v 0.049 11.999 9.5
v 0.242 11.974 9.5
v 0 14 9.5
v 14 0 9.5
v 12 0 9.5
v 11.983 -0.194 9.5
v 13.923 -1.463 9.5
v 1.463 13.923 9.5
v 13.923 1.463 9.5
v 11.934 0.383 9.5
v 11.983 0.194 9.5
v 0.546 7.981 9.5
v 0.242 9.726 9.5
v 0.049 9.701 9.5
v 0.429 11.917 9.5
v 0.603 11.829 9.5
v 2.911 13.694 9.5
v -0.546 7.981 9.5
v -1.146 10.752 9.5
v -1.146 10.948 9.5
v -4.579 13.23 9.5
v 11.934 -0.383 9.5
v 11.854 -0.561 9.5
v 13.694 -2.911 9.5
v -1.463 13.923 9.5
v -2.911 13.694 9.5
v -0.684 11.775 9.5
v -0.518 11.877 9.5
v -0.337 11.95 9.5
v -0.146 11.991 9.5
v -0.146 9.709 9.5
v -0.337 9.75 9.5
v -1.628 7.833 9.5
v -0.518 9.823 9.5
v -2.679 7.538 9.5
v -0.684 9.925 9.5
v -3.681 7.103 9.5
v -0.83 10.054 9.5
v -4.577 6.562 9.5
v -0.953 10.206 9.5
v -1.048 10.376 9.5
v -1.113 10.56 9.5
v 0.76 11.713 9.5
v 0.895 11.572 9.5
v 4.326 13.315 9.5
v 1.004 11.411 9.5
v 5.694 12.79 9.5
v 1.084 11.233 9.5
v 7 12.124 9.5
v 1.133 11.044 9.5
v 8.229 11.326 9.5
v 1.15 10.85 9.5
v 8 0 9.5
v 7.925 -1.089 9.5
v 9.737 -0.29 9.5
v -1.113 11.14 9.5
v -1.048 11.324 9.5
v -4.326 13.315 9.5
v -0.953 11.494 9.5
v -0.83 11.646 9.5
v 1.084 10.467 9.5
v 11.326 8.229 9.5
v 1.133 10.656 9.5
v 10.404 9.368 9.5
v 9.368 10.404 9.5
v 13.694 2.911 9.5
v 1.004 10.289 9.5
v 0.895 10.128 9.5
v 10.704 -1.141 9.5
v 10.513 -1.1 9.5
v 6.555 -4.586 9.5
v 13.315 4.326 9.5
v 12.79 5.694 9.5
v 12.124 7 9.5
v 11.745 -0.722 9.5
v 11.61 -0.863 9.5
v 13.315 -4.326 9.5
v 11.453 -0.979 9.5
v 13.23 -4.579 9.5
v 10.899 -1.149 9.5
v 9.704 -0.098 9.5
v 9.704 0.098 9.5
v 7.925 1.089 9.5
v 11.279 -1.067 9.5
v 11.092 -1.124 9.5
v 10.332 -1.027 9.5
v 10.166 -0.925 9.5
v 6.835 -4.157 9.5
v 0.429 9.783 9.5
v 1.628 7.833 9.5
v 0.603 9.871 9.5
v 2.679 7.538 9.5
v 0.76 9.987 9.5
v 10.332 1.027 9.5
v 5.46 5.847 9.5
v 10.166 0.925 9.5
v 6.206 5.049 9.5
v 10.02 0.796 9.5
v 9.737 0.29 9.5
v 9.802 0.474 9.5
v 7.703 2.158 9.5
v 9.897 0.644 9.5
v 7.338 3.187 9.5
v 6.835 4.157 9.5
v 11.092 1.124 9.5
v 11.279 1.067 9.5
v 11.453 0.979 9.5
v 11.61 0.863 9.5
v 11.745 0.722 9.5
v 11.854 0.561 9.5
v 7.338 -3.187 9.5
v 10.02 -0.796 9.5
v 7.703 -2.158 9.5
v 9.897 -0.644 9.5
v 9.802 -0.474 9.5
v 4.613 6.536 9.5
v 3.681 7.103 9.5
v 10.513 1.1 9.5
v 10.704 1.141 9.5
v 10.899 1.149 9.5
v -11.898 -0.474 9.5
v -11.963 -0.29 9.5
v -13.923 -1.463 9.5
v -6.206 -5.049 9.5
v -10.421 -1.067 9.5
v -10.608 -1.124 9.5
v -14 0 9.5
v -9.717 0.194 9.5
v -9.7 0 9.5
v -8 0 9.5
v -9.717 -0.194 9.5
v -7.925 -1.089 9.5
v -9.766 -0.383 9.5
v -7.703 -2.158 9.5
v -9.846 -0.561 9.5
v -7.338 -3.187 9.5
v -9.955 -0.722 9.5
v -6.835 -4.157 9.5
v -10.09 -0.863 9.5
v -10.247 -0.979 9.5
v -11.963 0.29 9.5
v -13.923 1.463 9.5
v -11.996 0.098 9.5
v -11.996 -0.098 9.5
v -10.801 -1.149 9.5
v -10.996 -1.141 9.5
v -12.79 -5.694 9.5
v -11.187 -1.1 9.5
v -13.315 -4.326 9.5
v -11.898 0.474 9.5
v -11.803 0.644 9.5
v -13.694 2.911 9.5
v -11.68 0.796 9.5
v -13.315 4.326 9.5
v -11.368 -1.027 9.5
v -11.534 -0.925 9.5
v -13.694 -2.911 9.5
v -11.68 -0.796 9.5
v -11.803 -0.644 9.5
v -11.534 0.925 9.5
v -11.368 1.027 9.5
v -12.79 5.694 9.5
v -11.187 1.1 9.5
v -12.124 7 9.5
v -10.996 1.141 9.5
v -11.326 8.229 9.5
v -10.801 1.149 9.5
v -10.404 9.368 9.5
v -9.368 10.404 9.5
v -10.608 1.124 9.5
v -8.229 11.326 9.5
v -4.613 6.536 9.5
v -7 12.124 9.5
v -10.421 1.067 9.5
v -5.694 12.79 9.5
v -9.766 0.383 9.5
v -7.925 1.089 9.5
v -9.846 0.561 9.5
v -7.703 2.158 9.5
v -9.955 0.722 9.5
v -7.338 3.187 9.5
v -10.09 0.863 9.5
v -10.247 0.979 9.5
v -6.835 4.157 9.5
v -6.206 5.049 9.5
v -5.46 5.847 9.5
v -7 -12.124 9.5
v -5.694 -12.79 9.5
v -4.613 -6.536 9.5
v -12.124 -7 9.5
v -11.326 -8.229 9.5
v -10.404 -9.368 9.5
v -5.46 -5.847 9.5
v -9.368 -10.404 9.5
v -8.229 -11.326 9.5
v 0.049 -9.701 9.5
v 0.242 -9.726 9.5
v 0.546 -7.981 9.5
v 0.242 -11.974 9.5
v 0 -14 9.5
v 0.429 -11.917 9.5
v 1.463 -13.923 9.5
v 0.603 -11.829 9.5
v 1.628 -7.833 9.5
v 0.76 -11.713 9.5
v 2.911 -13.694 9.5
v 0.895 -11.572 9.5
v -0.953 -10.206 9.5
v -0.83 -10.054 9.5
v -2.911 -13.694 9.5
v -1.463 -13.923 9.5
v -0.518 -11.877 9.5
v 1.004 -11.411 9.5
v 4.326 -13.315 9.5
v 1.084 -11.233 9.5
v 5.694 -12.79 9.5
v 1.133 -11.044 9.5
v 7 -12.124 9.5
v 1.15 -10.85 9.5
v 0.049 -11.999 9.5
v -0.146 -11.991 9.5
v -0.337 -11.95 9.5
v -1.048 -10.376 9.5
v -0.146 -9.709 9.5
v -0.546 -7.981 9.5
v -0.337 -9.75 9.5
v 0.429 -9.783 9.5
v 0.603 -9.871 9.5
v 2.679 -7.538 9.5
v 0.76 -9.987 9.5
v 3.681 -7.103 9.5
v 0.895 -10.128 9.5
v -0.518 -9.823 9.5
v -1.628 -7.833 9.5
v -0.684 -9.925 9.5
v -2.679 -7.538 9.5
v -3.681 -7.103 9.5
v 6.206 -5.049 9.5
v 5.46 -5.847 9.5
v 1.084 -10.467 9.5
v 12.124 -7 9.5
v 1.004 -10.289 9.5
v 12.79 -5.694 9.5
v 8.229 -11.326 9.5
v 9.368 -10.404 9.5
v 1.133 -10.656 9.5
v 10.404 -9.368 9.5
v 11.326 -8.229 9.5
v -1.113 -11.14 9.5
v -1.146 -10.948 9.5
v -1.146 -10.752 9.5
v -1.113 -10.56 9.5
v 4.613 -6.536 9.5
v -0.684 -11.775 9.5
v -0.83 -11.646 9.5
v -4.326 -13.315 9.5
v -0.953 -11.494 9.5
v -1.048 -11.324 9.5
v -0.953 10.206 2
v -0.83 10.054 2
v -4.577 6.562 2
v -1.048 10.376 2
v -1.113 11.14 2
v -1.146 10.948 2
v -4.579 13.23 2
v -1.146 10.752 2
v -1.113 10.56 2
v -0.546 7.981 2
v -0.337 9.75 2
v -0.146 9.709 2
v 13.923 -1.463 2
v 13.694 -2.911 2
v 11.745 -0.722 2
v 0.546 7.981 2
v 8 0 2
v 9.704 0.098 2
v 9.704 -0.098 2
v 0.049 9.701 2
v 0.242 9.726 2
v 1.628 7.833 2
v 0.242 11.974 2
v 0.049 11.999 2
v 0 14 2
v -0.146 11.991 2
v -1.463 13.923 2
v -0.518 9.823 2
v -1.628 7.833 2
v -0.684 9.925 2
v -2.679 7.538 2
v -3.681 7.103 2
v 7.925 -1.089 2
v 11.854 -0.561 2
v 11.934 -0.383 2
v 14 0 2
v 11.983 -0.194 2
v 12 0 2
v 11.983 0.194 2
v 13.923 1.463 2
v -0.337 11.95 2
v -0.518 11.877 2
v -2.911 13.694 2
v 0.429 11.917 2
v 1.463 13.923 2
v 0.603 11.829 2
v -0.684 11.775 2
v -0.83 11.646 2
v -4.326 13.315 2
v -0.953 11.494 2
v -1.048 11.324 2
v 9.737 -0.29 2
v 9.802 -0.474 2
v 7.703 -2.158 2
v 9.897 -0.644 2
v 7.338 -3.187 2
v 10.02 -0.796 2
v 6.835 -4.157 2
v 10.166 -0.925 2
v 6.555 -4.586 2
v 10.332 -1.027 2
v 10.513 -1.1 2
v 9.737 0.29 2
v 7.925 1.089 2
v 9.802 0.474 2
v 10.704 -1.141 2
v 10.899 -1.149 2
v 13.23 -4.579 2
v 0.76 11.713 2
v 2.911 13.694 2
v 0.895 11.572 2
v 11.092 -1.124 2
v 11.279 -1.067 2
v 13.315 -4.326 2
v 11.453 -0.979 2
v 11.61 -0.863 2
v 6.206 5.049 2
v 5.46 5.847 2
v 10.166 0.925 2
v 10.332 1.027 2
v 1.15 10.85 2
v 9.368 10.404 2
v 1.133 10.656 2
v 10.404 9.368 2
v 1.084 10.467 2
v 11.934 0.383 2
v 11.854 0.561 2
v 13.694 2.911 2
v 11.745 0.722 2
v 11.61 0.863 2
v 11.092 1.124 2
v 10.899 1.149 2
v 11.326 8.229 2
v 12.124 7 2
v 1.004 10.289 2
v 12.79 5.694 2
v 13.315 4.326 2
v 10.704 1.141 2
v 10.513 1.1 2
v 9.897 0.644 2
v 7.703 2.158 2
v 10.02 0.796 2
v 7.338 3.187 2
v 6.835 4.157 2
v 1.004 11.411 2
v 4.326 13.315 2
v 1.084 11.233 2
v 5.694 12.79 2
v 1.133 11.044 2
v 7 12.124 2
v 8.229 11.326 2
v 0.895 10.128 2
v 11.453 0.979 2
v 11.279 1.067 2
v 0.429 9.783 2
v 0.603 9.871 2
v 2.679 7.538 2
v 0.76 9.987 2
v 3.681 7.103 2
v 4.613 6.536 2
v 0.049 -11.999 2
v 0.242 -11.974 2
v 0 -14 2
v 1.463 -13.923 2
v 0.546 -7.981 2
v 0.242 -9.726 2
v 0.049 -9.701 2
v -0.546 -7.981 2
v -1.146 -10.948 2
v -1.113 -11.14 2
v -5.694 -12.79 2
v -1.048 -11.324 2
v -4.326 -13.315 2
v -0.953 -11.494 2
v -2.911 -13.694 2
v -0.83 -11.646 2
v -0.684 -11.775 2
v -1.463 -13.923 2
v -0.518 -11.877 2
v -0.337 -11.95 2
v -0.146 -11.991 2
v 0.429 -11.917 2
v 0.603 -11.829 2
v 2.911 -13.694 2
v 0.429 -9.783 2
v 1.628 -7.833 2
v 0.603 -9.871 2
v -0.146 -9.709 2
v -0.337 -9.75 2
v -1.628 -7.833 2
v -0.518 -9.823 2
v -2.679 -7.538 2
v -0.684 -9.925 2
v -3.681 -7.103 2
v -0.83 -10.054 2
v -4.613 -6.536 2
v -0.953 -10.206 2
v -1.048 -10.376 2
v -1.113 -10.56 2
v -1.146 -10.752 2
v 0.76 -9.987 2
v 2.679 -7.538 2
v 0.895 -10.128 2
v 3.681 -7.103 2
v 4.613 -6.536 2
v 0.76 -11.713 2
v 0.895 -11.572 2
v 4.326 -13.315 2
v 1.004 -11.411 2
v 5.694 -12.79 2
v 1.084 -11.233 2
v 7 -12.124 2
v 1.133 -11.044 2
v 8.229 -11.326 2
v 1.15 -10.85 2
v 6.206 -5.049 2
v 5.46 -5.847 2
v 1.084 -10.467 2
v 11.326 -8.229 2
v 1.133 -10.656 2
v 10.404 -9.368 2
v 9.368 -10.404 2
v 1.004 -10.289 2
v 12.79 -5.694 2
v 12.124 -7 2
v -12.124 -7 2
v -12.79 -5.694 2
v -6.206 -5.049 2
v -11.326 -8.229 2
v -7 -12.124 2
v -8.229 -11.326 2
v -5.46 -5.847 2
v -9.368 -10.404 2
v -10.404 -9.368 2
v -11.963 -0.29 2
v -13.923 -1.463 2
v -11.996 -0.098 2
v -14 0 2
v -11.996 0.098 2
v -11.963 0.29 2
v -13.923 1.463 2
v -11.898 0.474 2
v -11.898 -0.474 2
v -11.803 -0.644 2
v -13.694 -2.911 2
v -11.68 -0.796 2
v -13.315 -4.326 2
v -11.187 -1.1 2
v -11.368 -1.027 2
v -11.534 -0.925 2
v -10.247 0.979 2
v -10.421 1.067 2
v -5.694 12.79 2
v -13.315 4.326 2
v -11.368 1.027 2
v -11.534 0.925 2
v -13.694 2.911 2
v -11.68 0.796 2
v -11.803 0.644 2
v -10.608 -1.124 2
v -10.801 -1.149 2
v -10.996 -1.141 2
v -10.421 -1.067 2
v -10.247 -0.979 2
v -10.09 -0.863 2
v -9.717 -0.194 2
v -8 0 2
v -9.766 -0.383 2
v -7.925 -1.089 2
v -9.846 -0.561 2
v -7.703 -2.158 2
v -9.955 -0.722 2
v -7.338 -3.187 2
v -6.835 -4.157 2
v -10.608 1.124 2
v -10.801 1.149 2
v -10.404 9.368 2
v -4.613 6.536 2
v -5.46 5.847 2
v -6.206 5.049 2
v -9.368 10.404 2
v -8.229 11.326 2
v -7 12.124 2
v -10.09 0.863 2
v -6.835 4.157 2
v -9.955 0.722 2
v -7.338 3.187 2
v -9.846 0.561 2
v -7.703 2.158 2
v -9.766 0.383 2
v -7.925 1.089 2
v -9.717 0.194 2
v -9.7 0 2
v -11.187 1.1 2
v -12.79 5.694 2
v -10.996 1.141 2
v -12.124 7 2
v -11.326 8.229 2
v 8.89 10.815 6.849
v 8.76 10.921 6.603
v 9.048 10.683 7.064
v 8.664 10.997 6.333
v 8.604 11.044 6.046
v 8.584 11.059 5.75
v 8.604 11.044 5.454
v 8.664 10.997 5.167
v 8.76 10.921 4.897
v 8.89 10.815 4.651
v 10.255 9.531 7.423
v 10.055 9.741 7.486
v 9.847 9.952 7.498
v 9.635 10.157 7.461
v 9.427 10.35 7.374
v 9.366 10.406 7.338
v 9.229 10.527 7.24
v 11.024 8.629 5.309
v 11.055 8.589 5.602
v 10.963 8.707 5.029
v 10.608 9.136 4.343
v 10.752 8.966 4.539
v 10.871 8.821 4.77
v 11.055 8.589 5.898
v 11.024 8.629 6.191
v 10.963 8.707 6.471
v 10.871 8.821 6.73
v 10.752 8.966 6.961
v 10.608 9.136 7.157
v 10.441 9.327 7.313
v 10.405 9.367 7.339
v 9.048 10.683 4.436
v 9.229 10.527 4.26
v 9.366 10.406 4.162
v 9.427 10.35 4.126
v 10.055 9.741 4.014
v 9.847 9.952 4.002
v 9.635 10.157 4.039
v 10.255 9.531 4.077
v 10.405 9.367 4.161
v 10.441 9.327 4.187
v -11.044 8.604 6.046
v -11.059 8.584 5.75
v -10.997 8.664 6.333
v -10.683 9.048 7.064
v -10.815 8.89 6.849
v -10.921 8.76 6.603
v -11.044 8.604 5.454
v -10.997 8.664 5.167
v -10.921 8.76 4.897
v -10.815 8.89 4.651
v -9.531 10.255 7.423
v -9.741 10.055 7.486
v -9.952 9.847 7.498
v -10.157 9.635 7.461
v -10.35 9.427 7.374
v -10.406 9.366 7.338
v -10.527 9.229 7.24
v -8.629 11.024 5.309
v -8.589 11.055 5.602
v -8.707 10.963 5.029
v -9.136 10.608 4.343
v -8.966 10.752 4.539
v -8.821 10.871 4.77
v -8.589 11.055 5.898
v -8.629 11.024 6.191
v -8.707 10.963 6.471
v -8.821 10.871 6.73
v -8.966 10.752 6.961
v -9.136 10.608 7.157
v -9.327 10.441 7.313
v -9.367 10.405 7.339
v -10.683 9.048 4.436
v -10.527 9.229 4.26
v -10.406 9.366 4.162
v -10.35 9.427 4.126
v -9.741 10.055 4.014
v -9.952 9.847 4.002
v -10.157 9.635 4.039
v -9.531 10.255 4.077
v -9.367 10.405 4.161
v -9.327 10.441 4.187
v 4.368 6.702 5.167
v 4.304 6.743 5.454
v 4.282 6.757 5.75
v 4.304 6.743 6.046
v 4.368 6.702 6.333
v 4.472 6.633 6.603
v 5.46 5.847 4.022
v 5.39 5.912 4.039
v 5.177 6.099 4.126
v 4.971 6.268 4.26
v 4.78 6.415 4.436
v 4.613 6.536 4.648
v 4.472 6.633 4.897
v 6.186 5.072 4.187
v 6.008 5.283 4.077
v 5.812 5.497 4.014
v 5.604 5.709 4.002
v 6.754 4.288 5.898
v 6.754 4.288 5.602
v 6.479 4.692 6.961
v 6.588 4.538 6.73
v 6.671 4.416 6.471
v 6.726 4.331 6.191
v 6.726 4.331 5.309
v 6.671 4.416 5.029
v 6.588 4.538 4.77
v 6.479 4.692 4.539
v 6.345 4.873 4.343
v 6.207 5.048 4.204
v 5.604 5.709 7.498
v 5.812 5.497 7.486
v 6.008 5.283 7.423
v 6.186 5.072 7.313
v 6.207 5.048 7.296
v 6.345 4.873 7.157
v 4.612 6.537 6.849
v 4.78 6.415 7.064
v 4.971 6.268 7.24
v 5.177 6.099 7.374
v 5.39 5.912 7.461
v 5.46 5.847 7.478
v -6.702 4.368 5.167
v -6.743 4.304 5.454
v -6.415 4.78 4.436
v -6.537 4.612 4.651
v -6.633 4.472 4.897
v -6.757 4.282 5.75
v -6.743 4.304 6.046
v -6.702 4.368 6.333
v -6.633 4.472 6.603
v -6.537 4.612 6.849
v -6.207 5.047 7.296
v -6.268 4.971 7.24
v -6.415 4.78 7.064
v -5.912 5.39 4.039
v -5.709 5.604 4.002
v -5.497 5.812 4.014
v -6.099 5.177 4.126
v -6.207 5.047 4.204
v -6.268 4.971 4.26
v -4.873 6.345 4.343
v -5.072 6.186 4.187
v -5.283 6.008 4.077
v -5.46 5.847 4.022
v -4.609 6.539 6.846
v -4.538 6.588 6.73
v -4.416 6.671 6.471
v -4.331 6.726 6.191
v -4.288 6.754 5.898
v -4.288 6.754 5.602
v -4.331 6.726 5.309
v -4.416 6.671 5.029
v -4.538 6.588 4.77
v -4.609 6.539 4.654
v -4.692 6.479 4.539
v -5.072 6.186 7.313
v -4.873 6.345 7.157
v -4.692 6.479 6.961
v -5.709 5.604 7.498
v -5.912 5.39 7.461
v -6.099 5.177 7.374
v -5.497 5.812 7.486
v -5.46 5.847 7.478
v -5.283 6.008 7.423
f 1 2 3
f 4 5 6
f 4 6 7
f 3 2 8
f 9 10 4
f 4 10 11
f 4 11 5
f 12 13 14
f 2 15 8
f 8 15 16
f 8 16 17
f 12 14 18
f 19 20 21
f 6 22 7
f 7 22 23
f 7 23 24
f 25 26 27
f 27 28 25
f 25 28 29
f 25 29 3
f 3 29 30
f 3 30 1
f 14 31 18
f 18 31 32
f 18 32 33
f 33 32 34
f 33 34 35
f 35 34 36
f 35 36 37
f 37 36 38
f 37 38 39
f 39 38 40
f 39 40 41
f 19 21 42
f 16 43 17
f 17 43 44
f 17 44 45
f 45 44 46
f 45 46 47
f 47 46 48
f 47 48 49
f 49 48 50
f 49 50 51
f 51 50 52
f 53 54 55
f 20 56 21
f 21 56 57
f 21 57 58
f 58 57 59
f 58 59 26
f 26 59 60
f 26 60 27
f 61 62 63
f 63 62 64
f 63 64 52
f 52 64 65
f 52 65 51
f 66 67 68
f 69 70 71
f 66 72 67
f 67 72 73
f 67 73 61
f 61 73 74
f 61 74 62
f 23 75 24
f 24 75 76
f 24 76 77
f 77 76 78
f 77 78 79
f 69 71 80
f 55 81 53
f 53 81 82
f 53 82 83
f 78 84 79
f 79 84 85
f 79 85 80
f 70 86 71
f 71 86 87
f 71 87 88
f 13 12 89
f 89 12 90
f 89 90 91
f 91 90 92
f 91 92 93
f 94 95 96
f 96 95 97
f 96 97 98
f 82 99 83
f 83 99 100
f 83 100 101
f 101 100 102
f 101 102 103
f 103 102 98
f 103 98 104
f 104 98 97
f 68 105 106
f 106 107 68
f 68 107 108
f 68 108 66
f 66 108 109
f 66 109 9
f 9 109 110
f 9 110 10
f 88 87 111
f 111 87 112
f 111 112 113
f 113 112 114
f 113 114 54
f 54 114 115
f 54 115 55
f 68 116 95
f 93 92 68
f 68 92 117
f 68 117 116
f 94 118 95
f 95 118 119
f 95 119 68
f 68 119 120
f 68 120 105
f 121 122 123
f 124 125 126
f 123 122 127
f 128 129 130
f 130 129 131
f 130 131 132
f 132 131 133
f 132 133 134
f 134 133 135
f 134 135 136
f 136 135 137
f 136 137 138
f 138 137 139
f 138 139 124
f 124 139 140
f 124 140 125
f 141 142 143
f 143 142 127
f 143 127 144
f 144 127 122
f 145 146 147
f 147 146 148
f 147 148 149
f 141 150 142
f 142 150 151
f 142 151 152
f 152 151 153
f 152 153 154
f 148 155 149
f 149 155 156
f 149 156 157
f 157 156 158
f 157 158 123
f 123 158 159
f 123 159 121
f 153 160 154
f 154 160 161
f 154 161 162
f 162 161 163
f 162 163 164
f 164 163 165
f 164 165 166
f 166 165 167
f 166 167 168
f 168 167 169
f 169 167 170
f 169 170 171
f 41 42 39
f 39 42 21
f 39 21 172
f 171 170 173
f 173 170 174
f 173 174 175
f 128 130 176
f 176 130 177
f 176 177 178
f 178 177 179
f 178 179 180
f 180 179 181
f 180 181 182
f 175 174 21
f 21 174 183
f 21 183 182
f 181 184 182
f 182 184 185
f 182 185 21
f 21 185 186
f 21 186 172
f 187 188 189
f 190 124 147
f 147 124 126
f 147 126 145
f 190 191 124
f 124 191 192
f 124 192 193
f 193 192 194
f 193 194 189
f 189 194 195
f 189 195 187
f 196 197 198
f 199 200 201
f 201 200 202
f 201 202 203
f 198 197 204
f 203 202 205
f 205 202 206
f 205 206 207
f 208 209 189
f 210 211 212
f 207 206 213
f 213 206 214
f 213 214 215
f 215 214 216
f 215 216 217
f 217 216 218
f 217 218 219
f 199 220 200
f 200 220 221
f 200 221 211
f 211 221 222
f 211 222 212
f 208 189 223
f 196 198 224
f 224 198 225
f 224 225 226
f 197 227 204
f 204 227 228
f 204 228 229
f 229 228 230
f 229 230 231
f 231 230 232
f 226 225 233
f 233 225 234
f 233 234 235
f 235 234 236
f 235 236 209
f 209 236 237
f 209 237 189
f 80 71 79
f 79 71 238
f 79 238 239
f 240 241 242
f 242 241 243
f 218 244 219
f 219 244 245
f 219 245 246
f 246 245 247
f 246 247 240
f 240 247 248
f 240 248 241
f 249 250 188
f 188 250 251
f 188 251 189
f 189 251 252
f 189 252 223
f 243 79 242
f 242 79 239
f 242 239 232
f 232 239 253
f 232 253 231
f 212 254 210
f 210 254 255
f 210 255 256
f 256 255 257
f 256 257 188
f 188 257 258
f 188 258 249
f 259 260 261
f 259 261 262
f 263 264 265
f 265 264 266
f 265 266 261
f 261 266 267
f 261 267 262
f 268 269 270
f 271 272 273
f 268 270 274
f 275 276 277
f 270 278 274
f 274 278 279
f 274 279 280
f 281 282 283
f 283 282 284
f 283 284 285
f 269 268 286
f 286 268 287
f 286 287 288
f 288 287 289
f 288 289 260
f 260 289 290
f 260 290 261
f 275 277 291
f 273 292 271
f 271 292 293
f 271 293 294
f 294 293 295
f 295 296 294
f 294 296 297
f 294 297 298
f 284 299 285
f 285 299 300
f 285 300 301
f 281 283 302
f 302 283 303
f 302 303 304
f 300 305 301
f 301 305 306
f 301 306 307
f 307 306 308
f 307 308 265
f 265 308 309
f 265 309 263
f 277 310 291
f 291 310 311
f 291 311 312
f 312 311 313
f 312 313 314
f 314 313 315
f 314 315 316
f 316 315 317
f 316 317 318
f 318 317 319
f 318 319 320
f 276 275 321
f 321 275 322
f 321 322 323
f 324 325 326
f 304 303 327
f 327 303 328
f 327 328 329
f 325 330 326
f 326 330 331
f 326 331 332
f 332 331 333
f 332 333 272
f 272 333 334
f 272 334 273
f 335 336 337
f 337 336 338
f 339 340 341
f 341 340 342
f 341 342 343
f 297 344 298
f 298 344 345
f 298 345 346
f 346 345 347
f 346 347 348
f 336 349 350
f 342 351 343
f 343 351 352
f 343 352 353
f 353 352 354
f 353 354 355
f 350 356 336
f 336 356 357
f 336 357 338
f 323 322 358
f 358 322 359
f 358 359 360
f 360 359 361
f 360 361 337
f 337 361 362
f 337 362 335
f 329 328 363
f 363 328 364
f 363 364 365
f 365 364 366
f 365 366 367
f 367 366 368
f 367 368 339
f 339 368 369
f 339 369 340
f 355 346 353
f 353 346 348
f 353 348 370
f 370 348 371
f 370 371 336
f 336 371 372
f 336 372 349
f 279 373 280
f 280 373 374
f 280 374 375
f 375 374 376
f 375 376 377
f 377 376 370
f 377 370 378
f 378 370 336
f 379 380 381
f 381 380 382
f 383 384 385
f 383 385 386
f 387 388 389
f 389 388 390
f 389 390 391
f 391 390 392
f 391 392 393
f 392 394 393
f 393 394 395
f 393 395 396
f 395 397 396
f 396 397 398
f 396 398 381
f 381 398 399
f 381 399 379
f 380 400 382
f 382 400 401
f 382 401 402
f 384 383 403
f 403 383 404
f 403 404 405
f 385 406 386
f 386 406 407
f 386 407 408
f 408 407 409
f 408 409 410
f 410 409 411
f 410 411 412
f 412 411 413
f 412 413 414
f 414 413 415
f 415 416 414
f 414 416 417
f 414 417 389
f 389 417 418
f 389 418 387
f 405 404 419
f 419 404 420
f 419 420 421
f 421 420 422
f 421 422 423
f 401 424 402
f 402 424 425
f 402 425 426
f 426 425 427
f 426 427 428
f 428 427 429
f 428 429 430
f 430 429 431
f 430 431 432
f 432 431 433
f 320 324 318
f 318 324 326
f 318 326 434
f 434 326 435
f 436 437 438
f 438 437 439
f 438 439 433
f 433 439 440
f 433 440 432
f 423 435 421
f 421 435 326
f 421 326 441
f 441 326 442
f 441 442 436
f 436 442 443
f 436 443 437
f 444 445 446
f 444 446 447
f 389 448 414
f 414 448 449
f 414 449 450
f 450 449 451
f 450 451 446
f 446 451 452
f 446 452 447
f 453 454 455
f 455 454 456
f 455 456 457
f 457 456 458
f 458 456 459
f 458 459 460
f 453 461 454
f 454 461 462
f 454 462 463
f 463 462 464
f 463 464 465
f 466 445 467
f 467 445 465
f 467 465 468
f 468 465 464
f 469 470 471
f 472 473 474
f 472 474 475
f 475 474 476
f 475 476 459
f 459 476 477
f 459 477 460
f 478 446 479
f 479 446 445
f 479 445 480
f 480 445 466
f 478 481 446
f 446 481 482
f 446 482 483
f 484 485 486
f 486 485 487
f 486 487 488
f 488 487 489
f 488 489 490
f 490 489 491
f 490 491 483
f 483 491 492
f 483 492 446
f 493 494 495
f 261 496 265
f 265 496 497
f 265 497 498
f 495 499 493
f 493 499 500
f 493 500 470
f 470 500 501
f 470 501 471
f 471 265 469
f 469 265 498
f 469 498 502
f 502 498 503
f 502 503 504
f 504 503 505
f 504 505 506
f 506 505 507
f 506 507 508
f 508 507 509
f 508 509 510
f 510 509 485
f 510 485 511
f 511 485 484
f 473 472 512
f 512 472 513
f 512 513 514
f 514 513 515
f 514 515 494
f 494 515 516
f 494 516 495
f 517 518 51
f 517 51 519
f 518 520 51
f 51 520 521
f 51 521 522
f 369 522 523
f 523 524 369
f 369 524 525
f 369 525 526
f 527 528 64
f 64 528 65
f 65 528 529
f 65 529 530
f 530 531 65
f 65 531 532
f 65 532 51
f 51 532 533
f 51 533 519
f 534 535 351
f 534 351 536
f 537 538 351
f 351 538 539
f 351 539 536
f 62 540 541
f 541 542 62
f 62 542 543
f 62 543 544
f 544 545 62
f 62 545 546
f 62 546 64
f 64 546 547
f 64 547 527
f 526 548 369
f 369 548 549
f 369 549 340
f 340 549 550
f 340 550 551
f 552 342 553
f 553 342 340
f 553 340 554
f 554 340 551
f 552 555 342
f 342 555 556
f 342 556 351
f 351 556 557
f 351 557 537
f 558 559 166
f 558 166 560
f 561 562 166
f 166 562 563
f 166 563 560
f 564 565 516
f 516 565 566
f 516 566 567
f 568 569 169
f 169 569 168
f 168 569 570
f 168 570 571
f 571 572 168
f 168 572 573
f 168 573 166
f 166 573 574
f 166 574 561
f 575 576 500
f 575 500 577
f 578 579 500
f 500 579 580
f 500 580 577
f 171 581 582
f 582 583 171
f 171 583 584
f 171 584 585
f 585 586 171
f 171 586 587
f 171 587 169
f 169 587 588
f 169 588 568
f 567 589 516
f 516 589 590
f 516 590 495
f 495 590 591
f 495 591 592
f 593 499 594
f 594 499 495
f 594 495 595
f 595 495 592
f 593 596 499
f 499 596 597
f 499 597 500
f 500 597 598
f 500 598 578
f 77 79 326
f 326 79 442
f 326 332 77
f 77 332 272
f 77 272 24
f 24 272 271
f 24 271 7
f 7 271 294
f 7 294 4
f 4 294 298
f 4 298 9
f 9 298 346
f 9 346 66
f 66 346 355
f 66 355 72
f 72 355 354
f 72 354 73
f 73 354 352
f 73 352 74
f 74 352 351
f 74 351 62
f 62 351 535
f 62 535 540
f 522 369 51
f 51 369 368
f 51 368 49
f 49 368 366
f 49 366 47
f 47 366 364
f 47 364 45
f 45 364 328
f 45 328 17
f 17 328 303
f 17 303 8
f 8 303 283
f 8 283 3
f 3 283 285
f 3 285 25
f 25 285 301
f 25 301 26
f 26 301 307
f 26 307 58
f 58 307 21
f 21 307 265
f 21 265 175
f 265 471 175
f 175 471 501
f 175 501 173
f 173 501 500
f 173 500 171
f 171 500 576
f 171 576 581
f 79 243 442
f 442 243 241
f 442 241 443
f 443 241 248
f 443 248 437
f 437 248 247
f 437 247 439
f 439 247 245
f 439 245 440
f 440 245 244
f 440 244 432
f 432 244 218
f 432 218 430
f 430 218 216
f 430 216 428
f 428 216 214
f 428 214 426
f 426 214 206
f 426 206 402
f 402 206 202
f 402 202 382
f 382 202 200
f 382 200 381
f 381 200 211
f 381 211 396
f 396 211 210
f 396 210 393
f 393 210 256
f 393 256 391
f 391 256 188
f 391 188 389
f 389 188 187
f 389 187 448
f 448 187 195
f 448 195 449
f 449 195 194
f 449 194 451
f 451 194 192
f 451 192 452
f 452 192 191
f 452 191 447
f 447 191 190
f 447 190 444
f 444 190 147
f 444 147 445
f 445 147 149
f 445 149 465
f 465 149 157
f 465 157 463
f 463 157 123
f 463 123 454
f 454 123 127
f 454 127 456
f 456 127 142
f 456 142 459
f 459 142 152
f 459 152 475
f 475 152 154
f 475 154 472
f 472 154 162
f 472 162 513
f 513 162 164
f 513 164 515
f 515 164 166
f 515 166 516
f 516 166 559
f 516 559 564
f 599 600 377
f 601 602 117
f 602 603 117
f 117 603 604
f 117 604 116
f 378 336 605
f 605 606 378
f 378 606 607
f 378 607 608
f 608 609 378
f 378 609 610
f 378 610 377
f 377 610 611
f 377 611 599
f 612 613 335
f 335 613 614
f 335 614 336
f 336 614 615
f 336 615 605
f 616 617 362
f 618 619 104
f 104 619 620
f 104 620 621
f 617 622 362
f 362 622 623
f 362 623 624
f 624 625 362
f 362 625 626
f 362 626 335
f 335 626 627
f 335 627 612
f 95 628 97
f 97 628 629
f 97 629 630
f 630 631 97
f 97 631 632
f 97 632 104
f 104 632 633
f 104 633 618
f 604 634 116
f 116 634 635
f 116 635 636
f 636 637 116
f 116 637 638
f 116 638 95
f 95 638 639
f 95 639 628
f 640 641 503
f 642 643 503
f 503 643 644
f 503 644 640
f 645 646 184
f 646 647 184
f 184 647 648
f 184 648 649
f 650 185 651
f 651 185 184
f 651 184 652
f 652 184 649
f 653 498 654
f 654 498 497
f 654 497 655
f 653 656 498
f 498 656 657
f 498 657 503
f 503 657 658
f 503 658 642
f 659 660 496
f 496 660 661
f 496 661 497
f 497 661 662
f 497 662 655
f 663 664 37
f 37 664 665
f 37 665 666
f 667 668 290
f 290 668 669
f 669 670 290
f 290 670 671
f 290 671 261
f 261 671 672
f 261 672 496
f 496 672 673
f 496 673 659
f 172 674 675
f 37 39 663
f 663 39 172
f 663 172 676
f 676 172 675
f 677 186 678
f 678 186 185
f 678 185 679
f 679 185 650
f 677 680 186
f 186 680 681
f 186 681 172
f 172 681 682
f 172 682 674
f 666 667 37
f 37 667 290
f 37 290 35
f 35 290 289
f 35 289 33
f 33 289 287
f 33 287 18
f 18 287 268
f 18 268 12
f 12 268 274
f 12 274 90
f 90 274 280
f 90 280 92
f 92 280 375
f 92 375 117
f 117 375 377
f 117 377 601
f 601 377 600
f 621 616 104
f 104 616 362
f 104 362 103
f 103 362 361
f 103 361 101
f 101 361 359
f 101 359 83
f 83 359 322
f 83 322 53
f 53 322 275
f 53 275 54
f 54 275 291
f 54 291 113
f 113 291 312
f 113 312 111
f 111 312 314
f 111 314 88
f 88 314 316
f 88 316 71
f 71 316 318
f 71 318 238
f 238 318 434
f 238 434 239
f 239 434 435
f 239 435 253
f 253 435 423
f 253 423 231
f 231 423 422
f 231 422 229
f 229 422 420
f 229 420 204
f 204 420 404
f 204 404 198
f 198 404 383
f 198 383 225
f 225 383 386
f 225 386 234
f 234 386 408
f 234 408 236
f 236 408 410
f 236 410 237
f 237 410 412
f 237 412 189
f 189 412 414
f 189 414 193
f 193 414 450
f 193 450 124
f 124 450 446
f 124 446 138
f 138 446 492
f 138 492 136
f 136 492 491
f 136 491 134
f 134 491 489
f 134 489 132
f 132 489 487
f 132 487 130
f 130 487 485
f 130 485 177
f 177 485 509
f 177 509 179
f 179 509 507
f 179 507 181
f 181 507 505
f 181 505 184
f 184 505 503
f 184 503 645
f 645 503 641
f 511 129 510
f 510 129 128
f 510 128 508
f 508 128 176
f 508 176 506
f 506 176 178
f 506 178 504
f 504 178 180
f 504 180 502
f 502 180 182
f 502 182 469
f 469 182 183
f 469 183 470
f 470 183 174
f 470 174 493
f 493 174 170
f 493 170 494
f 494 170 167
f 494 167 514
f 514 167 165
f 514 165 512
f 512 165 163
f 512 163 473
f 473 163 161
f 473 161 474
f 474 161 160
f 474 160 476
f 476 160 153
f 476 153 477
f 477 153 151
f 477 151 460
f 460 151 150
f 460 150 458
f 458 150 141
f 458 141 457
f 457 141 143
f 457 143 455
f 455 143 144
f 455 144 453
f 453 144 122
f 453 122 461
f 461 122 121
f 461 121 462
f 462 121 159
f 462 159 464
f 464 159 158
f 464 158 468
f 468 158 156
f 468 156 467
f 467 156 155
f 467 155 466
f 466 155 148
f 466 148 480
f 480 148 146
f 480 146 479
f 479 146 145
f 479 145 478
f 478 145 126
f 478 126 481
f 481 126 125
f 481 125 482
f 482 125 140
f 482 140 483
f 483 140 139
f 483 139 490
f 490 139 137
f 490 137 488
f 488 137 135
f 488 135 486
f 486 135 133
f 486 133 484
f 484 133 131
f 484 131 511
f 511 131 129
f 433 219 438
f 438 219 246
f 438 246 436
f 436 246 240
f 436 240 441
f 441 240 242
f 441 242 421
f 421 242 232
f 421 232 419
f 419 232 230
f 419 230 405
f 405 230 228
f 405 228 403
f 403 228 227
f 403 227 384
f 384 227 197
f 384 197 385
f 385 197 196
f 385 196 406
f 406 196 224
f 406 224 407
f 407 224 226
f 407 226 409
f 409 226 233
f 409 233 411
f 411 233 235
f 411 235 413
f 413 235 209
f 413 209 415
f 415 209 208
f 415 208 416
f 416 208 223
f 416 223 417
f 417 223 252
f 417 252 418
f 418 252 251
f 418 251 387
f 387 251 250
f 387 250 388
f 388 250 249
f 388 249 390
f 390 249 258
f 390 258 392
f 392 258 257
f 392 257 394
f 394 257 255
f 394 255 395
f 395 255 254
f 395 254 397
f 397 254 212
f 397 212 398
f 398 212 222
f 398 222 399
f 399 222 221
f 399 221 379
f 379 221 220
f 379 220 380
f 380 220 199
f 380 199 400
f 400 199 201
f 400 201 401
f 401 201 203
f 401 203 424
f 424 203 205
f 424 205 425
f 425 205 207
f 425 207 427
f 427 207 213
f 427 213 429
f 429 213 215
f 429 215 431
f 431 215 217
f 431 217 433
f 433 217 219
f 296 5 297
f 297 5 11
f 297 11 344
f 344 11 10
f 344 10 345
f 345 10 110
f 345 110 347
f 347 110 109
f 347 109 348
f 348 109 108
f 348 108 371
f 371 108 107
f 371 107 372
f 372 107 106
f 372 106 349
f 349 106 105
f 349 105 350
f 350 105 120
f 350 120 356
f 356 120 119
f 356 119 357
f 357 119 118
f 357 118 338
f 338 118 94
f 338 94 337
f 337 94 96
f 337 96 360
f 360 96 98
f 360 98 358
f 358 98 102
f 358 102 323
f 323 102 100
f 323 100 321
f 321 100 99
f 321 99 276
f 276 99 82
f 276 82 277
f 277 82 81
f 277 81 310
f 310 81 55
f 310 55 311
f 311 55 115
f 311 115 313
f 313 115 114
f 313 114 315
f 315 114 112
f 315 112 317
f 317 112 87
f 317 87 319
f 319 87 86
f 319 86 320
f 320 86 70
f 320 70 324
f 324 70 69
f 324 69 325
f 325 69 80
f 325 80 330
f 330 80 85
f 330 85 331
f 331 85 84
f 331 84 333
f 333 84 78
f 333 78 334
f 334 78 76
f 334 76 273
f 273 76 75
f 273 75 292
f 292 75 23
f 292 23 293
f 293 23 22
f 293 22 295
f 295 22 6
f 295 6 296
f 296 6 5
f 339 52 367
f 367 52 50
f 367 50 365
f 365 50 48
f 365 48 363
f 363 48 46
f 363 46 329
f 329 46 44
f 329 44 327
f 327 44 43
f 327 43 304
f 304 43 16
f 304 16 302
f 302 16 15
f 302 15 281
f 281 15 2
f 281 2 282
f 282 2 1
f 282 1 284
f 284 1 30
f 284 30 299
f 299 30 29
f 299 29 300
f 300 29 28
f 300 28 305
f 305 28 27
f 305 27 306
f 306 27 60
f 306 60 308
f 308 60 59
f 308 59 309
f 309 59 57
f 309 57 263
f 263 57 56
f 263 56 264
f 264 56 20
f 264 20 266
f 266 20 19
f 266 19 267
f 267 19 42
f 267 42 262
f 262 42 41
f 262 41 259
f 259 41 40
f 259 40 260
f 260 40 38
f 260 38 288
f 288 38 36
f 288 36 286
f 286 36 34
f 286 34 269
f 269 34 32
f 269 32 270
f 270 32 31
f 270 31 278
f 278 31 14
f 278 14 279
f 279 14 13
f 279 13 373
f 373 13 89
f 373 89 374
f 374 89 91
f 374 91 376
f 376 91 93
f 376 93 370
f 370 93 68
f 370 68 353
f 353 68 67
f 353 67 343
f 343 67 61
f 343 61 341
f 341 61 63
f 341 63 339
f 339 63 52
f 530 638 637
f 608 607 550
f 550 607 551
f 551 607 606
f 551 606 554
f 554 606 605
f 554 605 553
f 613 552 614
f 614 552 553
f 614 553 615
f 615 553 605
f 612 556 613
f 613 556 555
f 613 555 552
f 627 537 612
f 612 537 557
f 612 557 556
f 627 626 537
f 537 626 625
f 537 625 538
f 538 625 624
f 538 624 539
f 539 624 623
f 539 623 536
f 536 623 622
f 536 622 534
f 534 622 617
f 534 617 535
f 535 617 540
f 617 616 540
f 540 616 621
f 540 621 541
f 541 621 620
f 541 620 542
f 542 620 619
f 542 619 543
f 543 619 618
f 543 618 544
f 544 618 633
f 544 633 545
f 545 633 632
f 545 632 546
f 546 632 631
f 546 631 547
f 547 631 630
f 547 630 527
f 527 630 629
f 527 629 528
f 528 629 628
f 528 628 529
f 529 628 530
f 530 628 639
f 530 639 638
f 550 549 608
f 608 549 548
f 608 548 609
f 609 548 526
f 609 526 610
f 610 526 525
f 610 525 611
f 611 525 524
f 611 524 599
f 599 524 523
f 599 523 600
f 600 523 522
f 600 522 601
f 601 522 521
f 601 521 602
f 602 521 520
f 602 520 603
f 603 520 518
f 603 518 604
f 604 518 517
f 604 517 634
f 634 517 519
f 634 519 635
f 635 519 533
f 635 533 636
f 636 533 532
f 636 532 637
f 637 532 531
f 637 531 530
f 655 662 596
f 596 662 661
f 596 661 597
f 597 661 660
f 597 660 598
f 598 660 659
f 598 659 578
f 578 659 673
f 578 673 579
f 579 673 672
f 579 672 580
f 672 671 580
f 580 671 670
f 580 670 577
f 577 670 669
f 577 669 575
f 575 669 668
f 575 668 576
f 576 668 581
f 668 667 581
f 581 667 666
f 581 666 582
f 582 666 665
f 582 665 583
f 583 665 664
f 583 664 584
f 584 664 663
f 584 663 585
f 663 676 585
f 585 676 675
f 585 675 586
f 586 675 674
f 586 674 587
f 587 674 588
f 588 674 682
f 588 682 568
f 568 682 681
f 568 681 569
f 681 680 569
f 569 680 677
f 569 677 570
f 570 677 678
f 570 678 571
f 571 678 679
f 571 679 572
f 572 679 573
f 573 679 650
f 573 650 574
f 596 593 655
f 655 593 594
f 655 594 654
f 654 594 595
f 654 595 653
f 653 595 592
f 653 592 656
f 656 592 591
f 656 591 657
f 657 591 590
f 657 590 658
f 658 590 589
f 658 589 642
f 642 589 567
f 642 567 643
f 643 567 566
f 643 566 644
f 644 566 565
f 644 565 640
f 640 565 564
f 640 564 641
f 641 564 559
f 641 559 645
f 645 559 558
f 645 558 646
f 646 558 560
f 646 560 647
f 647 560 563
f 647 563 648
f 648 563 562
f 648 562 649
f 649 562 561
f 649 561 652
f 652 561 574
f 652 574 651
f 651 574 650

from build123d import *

# Parameters (mm, degrees)
SKETCH2_R           = 14
SKETCH2_R_2         = 8
BOSS_EXTRUDE2_DEPTH = 7.5
SKETCH5_R           = 1.15
CUT_EXTRUDE2_DEPTH  = 22.17191536
SKETCH7_R           = 1.75
CUT_EXTRUDE3_DEPTH  = 7
SKETCH9_R           = 1.75
CUT_EXTRUDE4_DEPTH  = 7


with BuildPart() as part:
    # Sketch2 → Boss-Extrude2 (new body)
    with BuildSketch(Plane.XY.offset(2)):
        Circle(SKETCH2_R)
        Circle(SKETCH2_R_2, mode=Mode.SUBTRACT)
    extrude(amount=BOSS_EXTRUDE2_DEPTH)

    # Sketch5 → Cut-Extrude2 (cut, through all)
    with BuildSketch(Plane.XY.offset(9.5)):
        with Locations((0, 10.85)):
            Circle(SKETCH5_R)
        with Locations((10.85, 0)):
            Circle(SKETCH5_R)
        with Locations((0, -10.85)):
            Circle(SKETCH5_R)
        with Locations((-10.85, 0)):
            Circle(SKETCH5_R)
    extrude(amount=-CUT_EXTRUDE2_DEPTH, mode=Mode.SUBTRACT)

    # Sketch7 → Cut-Extrude3 (cut)
    with BuildSketch(Plane(origin=(9.899494937, 9.899494937, 0), x_dir=(0.7071067811865489, -0.7071067811865461, 0), z_dir=(0.7071067811865461, 0.7071067811865489, 0))):
        with Locations((0, -5.75)):
            Circle(SKETCH7_R)
    extrude(amount=-CUT_EXTRUDE3_DEPTH, mode=Mode.SUBTRACT)

    # Sketch9 → Cut-Extrude4 (cut)
    with BuildSketch(Plane(origin=(-9.899494937, 9.899494937, 0), x_dir=(0, 0, 1), z_dir=(-0.7071067811865489, 0.7071067811865462, 0))):
        with Locations((5.75, 0)):
            Circle(SKETCH9_R)
    extrude(amount=-CUT_EXTRUDE4_DEPTH, mode=Mode.SUBTRACT)


solid = part.part
